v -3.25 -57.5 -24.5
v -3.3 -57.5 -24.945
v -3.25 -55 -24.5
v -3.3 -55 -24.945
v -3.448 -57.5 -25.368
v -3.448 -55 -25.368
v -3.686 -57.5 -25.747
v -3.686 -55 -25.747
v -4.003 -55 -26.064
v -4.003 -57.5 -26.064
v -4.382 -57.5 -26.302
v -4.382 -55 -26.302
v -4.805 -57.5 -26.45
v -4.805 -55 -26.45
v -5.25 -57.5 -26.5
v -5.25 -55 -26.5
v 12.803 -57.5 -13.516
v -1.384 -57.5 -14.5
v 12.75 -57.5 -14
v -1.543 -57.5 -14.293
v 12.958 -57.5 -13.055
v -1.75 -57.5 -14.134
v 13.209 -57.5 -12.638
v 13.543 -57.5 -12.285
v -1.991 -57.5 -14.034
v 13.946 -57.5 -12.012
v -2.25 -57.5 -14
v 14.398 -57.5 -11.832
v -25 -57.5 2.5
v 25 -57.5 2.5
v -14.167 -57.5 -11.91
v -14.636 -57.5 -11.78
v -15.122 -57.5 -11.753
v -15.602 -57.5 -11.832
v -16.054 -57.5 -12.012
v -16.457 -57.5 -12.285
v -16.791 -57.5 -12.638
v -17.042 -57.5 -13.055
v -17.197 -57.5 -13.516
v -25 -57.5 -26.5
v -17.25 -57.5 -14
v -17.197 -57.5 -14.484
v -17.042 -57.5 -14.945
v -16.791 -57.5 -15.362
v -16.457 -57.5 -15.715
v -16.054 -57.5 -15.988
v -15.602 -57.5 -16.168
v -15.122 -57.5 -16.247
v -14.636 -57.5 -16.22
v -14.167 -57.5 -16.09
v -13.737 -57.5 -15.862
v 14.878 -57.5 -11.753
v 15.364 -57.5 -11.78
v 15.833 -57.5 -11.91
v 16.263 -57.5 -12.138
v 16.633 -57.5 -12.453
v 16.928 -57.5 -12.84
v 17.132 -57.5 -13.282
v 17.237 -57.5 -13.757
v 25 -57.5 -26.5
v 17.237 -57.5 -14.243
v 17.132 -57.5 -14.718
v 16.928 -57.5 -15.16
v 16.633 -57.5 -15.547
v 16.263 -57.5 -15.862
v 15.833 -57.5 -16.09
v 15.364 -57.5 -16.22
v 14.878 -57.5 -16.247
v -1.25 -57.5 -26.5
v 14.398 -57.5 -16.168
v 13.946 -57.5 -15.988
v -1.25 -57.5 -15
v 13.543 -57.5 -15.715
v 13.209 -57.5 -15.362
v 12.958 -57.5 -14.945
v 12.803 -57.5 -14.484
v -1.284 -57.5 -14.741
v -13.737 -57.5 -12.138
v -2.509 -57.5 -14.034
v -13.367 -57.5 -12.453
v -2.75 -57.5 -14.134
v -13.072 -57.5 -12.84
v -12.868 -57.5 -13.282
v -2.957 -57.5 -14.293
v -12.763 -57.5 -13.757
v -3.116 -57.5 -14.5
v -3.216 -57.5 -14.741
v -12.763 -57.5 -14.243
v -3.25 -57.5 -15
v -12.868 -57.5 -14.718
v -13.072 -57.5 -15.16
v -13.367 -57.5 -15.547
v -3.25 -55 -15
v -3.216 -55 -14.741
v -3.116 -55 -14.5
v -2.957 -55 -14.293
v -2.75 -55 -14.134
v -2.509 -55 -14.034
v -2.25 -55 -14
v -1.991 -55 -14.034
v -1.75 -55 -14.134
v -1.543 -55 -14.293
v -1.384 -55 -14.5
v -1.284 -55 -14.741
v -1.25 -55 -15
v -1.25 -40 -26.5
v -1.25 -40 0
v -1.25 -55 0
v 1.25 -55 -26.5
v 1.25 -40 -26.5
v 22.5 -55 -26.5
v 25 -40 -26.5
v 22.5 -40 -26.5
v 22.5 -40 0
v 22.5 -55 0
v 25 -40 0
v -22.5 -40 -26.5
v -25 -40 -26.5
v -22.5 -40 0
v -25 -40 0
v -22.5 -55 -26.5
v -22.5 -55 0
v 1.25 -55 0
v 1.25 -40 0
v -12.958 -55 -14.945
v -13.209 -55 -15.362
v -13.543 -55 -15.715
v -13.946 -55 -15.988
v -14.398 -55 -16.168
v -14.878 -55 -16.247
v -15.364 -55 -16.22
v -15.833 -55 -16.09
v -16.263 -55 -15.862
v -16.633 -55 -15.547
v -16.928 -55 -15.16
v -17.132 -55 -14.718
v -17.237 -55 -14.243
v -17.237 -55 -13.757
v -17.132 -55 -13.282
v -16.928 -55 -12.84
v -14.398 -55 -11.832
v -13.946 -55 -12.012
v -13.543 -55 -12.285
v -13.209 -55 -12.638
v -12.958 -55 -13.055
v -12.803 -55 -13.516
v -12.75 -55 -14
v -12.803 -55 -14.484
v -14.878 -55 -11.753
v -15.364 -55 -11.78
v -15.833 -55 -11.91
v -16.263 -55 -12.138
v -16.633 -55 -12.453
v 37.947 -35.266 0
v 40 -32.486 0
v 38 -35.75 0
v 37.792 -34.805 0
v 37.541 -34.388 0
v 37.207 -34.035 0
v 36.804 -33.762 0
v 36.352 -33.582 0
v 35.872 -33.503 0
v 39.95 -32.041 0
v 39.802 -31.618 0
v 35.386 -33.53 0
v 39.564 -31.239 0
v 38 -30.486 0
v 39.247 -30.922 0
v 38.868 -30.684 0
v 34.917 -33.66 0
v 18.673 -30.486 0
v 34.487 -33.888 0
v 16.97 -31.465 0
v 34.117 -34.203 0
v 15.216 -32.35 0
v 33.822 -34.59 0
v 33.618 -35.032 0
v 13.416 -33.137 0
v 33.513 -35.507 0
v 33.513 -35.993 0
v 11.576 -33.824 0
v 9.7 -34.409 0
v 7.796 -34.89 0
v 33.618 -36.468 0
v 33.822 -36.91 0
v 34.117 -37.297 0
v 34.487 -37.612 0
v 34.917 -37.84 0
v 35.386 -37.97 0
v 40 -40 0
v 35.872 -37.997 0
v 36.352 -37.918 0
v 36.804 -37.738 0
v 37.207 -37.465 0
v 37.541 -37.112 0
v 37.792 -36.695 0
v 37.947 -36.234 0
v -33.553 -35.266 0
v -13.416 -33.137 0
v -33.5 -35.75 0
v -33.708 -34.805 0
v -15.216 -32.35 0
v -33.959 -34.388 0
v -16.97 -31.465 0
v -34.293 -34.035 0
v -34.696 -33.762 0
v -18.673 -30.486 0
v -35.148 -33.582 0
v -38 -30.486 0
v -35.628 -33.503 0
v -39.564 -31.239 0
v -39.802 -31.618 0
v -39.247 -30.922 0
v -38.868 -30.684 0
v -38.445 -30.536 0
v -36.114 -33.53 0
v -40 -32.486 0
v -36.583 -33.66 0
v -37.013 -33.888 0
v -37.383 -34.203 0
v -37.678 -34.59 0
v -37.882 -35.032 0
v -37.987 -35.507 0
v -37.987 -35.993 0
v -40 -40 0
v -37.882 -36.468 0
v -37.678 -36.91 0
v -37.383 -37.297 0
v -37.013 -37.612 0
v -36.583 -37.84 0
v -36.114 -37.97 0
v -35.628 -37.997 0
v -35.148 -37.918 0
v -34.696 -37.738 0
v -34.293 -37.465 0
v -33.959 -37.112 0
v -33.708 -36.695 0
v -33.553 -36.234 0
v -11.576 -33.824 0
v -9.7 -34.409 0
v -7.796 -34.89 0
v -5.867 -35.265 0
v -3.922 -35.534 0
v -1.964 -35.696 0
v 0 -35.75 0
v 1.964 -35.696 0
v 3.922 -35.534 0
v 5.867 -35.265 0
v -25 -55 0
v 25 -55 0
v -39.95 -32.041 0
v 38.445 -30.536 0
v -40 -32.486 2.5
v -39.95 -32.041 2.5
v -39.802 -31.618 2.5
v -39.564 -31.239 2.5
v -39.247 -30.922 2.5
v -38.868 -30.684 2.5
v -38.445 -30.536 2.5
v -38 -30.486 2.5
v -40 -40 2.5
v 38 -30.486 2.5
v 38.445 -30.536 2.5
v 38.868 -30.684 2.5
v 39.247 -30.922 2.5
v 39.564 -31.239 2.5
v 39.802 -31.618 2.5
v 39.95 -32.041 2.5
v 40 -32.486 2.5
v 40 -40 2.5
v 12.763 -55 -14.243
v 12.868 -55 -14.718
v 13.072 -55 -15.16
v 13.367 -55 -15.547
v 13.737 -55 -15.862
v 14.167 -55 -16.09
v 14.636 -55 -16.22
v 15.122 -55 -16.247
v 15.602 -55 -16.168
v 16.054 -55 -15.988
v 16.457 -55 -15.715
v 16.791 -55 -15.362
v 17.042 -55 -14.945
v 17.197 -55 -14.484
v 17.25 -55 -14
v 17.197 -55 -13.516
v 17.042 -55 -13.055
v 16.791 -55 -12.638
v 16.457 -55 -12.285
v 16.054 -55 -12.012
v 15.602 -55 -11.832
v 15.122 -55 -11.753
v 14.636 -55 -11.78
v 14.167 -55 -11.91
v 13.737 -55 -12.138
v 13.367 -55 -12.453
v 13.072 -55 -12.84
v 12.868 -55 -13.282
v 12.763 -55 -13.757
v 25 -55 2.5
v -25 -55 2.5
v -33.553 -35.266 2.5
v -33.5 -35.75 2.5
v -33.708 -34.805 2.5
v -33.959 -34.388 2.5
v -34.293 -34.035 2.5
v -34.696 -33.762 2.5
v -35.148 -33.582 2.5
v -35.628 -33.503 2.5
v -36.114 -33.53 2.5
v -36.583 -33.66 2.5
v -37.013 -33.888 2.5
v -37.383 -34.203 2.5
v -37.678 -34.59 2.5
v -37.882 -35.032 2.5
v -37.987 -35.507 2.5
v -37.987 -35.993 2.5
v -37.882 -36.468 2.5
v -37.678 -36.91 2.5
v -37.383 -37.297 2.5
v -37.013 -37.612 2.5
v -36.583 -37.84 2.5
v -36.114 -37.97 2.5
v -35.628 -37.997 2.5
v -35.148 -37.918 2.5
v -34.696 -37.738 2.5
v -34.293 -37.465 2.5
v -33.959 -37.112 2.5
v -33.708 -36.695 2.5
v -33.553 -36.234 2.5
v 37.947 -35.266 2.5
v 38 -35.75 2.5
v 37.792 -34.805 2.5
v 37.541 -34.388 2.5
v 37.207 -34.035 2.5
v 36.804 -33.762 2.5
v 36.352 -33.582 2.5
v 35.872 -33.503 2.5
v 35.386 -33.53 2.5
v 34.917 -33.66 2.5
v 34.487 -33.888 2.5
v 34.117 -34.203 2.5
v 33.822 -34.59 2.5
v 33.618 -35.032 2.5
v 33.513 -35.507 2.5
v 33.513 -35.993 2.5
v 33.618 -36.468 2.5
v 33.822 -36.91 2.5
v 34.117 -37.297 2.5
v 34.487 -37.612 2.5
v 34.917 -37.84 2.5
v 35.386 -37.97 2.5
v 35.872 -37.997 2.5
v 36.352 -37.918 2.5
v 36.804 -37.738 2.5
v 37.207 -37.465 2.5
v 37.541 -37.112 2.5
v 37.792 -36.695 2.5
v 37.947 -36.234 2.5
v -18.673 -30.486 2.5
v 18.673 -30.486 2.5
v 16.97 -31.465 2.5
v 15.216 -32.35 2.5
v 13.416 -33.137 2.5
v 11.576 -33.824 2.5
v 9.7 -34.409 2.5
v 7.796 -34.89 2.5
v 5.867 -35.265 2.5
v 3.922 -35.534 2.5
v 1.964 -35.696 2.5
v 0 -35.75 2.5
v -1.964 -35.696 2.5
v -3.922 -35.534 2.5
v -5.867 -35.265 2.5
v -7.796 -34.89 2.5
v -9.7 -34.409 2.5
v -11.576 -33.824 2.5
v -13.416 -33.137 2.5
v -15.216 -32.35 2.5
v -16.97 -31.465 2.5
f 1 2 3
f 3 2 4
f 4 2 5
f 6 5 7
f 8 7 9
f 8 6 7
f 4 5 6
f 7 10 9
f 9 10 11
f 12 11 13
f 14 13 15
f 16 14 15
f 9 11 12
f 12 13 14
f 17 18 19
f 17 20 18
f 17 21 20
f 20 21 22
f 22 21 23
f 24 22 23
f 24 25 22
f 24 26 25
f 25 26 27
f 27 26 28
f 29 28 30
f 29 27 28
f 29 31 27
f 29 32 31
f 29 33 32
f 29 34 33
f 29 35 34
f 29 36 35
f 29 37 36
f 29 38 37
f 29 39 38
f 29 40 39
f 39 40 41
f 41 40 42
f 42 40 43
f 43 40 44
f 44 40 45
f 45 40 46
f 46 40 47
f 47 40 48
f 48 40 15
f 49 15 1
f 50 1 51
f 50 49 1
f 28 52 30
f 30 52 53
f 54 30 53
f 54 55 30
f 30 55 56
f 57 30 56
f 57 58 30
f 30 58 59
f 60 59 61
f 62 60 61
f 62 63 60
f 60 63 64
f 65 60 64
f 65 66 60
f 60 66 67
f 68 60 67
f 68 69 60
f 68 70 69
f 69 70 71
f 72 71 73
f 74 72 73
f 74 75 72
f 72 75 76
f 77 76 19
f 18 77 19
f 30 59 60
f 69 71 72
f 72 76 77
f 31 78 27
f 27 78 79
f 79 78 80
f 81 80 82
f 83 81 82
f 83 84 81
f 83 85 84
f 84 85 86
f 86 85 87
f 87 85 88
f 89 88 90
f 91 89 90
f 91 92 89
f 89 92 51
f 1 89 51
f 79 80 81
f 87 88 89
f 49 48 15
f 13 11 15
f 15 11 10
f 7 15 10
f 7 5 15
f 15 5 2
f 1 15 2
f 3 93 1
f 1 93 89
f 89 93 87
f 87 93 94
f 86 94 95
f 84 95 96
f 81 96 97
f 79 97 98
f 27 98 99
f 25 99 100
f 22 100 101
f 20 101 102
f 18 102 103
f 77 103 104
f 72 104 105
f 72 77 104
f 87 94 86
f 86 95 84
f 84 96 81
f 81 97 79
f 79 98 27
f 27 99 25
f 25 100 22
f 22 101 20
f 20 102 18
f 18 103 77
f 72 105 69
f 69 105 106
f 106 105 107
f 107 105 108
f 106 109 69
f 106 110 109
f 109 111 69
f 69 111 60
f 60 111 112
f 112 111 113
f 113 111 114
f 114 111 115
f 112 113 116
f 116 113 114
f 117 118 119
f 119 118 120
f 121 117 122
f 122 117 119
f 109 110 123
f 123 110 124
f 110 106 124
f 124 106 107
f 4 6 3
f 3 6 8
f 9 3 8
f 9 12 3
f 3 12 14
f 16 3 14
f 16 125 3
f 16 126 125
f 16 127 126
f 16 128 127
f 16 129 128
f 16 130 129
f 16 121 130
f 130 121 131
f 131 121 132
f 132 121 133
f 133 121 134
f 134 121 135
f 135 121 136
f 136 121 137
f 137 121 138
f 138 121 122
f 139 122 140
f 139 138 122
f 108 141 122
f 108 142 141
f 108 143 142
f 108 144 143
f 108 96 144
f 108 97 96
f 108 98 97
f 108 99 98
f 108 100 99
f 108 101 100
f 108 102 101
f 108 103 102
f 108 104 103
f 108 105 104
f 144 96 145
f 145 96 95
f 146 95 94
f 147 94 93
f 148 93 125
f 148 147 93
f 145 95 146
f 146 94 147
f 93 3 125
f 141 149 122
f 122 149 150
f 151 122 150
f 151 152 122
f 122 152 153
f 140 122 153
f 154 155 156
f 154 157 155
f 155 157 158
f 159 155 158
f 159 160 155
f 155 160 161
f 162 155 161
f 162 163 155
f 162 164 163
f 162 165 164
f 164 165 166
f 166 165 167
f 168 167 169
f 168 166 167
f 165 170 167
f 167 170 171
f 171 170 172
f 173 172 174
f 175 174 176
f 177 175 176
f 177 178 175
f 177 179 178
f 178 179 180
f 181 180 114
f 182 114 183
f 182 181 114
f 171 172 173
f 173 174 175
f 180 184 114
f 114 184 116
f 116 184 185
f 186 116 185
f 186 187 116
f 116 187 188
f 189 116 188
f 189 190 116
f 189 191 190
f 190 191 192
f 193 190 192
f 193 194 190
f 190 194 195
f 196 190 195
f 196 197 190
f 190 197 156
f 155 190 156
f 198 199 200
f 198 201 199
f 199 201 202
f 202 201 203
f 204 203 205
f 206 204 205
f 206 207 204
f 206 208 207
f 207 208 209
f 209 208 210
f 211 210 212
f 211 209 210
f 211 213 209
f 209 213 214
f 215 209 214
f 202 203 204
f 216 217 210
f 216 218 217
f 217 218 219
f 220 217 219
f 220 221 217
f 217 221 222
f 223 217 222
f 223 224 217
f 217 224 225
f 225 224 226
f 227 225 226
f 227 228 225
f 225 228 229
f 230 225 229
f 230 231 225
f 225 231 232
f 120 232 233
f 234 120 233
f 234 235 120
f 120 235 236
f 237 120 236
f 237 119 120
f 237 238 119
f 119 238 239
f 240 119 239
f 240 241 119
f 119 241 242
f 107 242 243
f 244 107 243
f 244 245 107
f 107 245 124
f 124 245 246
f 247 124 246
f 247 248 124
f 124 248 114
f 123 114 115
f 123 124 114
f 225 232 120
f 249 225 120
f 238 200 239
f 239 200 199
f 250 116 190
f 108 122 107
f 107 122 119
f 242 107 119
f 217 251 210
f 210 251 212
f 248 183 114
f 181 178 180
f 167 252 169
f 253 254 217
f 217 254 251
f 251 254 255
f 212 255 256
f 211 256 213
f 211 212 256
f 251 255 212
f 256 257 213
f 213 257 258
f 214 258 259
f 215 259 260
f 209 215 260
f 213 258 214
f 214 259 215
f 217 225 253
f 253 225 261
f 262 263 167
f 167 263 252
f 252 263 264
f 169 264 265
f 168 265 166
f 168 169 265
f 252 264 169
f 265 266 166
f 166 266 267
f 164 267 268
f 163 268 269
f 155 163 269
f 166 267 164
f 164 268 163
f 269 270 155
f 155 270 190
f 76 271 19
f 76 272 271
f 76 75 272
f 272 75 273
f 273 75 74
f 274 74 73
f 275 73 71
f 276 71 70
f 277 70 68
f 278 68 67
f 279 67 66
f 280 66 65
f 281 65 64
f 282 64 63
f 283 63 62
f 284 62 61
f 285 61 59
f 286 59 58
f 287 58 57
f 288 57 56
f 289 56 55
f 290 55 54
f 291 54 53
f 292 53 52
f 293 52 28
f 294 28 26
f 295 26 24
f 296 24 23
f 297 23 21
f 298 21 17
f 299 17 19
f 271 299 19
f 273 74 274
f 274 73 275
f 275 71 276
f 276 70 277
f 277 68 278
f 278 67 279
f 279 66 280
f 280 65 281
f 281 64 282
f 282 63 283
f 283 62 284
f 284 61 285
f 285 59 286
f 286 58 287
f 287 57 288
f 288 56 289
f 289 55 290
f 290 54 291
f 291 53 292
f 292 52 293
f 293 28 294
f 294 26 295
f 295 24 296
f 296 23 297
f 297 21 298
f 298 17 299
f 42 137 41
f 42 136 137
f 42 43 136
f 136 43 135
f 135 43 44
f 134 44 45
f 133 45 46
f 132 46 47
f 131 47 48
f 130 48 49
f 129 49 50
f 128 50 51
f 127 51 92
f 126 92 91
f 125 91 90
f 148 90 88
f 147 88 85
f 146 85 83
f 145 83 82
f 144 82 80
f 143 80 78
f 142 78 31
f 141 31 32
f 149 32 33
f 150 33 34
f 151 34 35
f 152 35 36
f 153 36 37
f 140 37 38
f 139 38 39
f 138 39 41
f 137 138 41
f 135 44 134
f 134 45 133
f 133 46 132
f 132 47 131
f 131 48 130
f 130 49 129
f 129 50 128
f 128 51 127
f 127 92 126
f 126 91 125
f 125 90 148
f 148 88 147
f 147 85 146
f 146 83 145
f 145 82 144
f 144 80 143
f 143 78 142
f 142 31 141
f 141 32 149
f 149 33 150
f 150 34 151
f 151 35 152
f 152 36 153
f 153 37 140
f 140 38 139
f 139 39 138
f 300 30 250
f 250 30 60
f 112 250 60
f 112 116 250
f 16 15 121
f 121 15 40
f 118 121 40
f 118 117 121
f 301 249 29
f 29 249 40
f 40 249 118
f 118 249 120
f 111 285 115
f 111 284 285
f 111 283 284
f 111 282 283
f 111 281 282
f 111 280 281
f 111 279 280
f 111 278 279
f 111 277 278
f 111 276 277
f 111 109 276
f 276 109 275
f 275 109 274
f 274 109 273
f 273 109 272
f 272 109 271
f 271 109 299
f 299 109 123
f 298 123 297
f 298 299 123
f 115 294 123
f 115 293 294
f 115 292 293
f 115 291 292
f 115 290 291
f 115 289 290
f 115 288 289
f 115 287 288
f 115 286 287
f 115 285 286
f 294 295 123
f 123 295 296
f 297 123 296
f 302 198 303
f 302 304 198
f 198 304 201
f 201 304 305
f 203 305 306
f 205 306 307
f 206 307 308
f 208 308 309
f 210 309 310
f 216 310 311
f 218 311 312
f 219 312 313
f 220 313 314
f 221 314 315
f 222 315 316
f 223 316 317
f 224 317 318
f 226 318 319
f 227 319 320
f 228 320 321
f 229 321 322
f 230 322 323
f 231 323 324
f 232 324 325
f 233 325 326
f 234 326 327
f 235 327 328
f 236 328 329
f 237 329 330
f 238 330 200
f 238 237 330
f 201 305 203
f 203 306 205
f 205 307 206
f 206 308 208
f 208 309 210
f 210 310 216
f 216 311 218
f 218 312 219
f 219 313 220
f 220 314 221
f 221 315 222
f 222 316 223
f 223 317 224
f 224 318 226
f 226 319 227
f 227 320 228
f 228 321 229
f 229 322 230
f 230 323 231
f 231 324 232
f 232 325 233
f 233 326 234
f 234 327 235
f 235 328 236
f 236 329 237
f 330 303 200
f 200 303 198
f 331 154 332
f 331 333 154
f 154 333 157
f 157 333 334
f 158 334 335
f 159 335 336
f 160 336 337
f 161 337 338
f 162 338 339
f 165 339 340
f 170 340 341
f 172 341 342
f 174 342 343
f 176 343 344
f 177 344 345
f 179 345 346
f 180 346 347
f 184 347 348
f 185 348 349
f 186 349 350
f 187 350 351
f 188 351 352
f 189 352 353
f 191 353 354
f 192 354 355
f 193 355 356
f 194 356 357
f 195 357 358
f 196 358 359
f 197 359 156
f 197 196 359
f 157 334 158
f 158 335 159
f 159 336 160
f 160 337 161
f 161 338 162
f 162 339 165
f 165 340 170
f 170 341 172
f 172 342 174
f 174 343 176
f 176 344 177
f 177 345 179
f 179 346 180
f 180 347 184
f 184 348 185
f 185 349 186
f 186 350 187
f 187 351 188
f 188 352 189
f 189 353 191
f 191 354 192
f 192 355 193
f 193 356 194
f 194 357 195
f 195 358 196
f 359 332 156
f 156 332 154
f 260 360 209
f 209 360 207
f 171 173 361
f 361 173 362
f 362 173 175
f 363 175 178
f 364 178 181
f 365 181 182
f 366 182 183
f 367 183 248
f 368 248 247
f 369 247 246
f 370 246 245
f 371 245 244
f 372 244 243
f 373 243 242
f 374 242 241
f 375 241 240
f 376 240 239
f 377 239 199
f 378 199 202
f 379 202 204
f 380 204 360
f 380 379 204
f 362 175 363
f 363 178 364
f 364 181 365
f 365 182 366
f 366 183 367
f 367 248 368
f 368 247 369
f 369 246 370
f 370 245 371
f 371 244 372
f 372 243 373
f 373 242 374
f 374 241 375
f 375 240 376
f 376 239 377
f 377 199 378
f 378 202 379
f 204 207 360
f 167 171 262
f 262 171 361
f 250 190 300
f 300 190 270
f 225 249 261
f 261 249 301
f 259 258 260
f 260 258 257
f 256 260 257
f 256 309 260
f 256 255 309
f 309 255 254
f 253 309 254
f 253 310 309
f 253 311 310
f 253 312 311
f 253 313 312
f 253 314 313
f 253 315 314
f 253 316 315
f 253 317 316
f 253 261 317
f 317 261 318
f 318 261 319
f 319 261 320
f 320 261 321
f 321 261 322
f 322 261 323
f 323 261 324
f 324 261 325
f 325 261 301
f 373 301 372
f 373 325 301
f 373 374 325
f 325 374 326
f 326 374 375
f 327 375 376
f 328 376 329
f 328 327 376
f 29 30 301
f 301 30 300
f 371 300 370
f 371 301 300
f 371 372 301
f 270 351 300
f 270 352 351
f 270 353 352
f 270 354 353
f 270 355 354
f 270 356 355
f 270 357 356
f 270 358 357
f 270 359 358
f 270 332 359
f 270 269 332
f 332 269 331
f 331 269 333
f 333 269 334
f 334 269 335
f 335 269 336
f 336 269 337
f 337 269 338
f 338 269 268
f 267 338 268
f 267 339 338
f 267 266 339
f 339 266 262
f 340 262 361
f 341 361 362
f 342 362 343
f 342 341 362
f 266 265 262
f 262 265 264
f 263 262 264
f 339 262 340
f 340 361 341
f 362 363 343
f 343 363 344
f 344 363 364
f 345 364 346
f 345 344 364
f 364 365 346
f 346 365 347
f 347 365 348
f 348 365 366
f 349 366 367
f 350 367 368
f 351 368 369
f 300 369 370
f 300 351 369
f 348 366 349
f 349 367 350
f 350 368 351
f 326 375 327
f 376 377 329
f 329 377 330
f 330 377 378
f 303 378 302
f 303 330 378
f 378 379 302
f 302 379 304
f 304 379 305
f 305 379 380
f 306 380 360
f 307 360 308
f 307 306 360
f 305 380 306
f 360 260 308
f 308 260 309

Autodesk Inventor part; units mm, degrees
ref_plane "YZ Plane" through (0, 0, 0) normal (1, 0, 0) x (0, 1, 0)
ref_plane "XZ Plane" through (0, 0, 0) normal (0, 1, 0) x (-1, 0, 0)
ref_plane "XY Plane" through (0, 0, 0) normal (0, 0, 1) x (1, 0, 0)
sketch "Sketch1" plane through (0, 0, 0) normal (0, 0, 1) x (1, 0, 0)
  line L0 (-40, -40) -> (-40, 40) construction
  line L1 (40, -40) -> (-40, -40) construction
  line L2 (40, 40) -> (40, -40) construction
  circle A0 centre (35.75, -35.75) radius 2.25 construction
  circle A1 centre (-35.75, -35.75) radius 2.25 construction
  circle A2 centre (0, 0) radius 35.75 construction
  line L3 (-40, -40) -> (-25, -55)
  line L4 (-40, -40) -> (-18.7868, -40) construction
  line L5 (-25, -55) -> (25, -55)
  line L6 (25, -55) -> (40, -40)
  line L7 (-40, -40) -> (-40, -30.4857)
  line L8 (40, -40) -> (40, -30.4857)
  circle A3 centre (0, 0) radius 38.75 construction
  circle A4 centre (35.75, -35.75) radius 2.25
  circle A5 centre (-35.75, -35.75) radius 2.25
  line L9 (-40, -30.4857) -> (-18.673, -30.4857)
  line L10 (40, -30.4857) -> (18.673, -30.4857)
  arc A6 (-18.673, -30.4857) -> (18.673, -30.4857) centre (0, 0) ccw
extrude "Extrusion3" add sketch "Sketch1" along normal blind 2.5
sketch "Sketch5" plane through (-25, -55, 0) normal (0, -1, 0) x (1, 0, 0)
  line L0 (50, 2.5) -> (0, 2.5)
  line L1 (0, 2.5) -> (0, -26.5)
  line L2 (0, -26.5) -> (50, -26.5)
  line L3 (50, -26.5) -> (50, 2.5)
  point P0 (25, 0)
  dimension "d22" = 29
extrude "Extrusion5" add sketch "Sketch5" along normal blind 2.5
sketch "Sketch6" plane through (-25, -55, 0) normal (0, 1, 0) x (1, 0, 0)
  line L0 (40, 14) -> (10, 14)
  point P0 (25, 0)
  point P1 (25, 0)
  point P2 (25, 14)
  dimension "d25" = 30
  dimension "d52" = 14
hole "Hole2" at (15, -55, -14) at (-15, -55, -14) direction (0, -1, 0) diameter 4.5 end through all
fillet "Fillet2" radius 2 2 edges at (40, -30.4857, 1.25) (-40, -30.4857, 1.25)
sketch "Sketch8" plane through (0, 0, 0) normal (0, 0, -1) x (-1, 0, 0)
  line L0 (-40, -40) -> (40, -40) construction
  line L1 (-40, 40) -> (-40, -40) construction
  line L2 (40, 40) -> (-40, 40) construction
  line L3 (40, -40) -> (40, 40) construction
  circle A0 centre (35.75, -35.75) radius 2.25 construction
  circle A1 centre (35.75, 35.75) radius 2.25 construction
  circle A2 centre (-35.75, 35.75) radius 2.25 construction
  circle A3 centre (-35.75, -35.75) radius 2.25 construction
  circle A4 centre (0, 0) radius 38.75 construction
  line L4 (-25, -55) -> (-22.5, -55)
  line L5 (-22.5, -55) -> (-22.5, -40)
  line L6 (-22.5, -40) -> (-25, -40)
  line L7 (-25, -40) -> (-25, -55)
  line L8 (25, -55) -> (22.5, -55)
  line L9 (22.5, -55) -> (22.5, -40)
  line L10 (22.5, -40) -> (25, -40)
  line L11 (25, -40) -> (25, -55)
  line L12 (25, -55) -> (-25, -55) projected
  line L13 (1.25, -55) -> (-1.25, -55)
  line L14 (-1.25, -55) -> (-1.25, -40)
  line L15 (-1.25, -40) -> (1.25, -40)
  line L16 (1.25, -40) -> (1.25, -55)
  point P0 (0, -40)
  dimension "d39" = 2.5
  dimension "d40" = 2.5
  dimension "d41" = 2.5
extrude "Extrusion7" add sketch "Sketch8" along normal up to surface (26.5 mm away)
sketch "Sketch9" plane through (-25, -57.5, 0) normal (0, -1, 0) x (1, 0, 0)
  line L0 (23.75, 0) -> (23.75, -26.5) construction
  line L1 (23.75, 0) -> (23.75, -26.5) construction
  circle A0 centre (40, -14) radius 2.25 construction
  circle A1 centre (10, -14) radius 2.25 construction
  line L2 (40, -14) -> (10, -14) construction
  line L3 (23.75, -26.5) -> (21.75, -26.5)
  line L4 (21.75, -26.5) -> (21.75, -14)
  line L5 (21.75, -14) -> (23.75, -14)
  line L6 (23.75, -14) -> (23.75, -26.5)
  point P0 (25, 0)
  dimension "d45" = 2
extrude "Extrusion8" cut sketch "Sketch9" against normal through all
fillet "Fillet3" radius 1 2 edges at (-1.25, -56.25, -14) (-3.25, -56.25, -14)
fillet "Fillet4" radius 2 1 edges at (-3.25, -56.25, -26.5)
equation "\"d23\" = ep"
equation "\"d39\" = ep"
equation "\"d40\" = ep"
equation "\"d41\" = ep"
equation "\"d42\" = ep"
equation "\"d46\" = ep"
equation "\"d44\" = A1"
equation "\"ep\" = 2.5"
equation "\"A1\" = 45deg"
properties part number "support"
